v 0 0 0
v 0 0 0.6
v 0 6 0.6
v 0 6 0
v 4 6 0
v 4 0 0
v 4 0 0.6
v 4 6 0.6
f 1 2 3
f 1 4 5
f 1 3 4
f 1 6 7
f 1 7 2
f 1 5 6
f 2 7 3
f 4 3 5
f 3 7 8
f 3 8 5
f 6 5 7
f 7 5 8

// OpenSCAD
/* Warning, this is a very basic generator with a lot of approximation 
input data : [XFLGA, 3UX, 4x6x0.6mm, 48, , A, C04-00163A]
generated by com.zoubworld.electronics.cad.model3d.Basic
Date : Sun Feb 15 10:50:48 CET 2026
*/

//body
color("black")
translate([0,0,0])
cube([4.0,6.0,0.6], center=false);
